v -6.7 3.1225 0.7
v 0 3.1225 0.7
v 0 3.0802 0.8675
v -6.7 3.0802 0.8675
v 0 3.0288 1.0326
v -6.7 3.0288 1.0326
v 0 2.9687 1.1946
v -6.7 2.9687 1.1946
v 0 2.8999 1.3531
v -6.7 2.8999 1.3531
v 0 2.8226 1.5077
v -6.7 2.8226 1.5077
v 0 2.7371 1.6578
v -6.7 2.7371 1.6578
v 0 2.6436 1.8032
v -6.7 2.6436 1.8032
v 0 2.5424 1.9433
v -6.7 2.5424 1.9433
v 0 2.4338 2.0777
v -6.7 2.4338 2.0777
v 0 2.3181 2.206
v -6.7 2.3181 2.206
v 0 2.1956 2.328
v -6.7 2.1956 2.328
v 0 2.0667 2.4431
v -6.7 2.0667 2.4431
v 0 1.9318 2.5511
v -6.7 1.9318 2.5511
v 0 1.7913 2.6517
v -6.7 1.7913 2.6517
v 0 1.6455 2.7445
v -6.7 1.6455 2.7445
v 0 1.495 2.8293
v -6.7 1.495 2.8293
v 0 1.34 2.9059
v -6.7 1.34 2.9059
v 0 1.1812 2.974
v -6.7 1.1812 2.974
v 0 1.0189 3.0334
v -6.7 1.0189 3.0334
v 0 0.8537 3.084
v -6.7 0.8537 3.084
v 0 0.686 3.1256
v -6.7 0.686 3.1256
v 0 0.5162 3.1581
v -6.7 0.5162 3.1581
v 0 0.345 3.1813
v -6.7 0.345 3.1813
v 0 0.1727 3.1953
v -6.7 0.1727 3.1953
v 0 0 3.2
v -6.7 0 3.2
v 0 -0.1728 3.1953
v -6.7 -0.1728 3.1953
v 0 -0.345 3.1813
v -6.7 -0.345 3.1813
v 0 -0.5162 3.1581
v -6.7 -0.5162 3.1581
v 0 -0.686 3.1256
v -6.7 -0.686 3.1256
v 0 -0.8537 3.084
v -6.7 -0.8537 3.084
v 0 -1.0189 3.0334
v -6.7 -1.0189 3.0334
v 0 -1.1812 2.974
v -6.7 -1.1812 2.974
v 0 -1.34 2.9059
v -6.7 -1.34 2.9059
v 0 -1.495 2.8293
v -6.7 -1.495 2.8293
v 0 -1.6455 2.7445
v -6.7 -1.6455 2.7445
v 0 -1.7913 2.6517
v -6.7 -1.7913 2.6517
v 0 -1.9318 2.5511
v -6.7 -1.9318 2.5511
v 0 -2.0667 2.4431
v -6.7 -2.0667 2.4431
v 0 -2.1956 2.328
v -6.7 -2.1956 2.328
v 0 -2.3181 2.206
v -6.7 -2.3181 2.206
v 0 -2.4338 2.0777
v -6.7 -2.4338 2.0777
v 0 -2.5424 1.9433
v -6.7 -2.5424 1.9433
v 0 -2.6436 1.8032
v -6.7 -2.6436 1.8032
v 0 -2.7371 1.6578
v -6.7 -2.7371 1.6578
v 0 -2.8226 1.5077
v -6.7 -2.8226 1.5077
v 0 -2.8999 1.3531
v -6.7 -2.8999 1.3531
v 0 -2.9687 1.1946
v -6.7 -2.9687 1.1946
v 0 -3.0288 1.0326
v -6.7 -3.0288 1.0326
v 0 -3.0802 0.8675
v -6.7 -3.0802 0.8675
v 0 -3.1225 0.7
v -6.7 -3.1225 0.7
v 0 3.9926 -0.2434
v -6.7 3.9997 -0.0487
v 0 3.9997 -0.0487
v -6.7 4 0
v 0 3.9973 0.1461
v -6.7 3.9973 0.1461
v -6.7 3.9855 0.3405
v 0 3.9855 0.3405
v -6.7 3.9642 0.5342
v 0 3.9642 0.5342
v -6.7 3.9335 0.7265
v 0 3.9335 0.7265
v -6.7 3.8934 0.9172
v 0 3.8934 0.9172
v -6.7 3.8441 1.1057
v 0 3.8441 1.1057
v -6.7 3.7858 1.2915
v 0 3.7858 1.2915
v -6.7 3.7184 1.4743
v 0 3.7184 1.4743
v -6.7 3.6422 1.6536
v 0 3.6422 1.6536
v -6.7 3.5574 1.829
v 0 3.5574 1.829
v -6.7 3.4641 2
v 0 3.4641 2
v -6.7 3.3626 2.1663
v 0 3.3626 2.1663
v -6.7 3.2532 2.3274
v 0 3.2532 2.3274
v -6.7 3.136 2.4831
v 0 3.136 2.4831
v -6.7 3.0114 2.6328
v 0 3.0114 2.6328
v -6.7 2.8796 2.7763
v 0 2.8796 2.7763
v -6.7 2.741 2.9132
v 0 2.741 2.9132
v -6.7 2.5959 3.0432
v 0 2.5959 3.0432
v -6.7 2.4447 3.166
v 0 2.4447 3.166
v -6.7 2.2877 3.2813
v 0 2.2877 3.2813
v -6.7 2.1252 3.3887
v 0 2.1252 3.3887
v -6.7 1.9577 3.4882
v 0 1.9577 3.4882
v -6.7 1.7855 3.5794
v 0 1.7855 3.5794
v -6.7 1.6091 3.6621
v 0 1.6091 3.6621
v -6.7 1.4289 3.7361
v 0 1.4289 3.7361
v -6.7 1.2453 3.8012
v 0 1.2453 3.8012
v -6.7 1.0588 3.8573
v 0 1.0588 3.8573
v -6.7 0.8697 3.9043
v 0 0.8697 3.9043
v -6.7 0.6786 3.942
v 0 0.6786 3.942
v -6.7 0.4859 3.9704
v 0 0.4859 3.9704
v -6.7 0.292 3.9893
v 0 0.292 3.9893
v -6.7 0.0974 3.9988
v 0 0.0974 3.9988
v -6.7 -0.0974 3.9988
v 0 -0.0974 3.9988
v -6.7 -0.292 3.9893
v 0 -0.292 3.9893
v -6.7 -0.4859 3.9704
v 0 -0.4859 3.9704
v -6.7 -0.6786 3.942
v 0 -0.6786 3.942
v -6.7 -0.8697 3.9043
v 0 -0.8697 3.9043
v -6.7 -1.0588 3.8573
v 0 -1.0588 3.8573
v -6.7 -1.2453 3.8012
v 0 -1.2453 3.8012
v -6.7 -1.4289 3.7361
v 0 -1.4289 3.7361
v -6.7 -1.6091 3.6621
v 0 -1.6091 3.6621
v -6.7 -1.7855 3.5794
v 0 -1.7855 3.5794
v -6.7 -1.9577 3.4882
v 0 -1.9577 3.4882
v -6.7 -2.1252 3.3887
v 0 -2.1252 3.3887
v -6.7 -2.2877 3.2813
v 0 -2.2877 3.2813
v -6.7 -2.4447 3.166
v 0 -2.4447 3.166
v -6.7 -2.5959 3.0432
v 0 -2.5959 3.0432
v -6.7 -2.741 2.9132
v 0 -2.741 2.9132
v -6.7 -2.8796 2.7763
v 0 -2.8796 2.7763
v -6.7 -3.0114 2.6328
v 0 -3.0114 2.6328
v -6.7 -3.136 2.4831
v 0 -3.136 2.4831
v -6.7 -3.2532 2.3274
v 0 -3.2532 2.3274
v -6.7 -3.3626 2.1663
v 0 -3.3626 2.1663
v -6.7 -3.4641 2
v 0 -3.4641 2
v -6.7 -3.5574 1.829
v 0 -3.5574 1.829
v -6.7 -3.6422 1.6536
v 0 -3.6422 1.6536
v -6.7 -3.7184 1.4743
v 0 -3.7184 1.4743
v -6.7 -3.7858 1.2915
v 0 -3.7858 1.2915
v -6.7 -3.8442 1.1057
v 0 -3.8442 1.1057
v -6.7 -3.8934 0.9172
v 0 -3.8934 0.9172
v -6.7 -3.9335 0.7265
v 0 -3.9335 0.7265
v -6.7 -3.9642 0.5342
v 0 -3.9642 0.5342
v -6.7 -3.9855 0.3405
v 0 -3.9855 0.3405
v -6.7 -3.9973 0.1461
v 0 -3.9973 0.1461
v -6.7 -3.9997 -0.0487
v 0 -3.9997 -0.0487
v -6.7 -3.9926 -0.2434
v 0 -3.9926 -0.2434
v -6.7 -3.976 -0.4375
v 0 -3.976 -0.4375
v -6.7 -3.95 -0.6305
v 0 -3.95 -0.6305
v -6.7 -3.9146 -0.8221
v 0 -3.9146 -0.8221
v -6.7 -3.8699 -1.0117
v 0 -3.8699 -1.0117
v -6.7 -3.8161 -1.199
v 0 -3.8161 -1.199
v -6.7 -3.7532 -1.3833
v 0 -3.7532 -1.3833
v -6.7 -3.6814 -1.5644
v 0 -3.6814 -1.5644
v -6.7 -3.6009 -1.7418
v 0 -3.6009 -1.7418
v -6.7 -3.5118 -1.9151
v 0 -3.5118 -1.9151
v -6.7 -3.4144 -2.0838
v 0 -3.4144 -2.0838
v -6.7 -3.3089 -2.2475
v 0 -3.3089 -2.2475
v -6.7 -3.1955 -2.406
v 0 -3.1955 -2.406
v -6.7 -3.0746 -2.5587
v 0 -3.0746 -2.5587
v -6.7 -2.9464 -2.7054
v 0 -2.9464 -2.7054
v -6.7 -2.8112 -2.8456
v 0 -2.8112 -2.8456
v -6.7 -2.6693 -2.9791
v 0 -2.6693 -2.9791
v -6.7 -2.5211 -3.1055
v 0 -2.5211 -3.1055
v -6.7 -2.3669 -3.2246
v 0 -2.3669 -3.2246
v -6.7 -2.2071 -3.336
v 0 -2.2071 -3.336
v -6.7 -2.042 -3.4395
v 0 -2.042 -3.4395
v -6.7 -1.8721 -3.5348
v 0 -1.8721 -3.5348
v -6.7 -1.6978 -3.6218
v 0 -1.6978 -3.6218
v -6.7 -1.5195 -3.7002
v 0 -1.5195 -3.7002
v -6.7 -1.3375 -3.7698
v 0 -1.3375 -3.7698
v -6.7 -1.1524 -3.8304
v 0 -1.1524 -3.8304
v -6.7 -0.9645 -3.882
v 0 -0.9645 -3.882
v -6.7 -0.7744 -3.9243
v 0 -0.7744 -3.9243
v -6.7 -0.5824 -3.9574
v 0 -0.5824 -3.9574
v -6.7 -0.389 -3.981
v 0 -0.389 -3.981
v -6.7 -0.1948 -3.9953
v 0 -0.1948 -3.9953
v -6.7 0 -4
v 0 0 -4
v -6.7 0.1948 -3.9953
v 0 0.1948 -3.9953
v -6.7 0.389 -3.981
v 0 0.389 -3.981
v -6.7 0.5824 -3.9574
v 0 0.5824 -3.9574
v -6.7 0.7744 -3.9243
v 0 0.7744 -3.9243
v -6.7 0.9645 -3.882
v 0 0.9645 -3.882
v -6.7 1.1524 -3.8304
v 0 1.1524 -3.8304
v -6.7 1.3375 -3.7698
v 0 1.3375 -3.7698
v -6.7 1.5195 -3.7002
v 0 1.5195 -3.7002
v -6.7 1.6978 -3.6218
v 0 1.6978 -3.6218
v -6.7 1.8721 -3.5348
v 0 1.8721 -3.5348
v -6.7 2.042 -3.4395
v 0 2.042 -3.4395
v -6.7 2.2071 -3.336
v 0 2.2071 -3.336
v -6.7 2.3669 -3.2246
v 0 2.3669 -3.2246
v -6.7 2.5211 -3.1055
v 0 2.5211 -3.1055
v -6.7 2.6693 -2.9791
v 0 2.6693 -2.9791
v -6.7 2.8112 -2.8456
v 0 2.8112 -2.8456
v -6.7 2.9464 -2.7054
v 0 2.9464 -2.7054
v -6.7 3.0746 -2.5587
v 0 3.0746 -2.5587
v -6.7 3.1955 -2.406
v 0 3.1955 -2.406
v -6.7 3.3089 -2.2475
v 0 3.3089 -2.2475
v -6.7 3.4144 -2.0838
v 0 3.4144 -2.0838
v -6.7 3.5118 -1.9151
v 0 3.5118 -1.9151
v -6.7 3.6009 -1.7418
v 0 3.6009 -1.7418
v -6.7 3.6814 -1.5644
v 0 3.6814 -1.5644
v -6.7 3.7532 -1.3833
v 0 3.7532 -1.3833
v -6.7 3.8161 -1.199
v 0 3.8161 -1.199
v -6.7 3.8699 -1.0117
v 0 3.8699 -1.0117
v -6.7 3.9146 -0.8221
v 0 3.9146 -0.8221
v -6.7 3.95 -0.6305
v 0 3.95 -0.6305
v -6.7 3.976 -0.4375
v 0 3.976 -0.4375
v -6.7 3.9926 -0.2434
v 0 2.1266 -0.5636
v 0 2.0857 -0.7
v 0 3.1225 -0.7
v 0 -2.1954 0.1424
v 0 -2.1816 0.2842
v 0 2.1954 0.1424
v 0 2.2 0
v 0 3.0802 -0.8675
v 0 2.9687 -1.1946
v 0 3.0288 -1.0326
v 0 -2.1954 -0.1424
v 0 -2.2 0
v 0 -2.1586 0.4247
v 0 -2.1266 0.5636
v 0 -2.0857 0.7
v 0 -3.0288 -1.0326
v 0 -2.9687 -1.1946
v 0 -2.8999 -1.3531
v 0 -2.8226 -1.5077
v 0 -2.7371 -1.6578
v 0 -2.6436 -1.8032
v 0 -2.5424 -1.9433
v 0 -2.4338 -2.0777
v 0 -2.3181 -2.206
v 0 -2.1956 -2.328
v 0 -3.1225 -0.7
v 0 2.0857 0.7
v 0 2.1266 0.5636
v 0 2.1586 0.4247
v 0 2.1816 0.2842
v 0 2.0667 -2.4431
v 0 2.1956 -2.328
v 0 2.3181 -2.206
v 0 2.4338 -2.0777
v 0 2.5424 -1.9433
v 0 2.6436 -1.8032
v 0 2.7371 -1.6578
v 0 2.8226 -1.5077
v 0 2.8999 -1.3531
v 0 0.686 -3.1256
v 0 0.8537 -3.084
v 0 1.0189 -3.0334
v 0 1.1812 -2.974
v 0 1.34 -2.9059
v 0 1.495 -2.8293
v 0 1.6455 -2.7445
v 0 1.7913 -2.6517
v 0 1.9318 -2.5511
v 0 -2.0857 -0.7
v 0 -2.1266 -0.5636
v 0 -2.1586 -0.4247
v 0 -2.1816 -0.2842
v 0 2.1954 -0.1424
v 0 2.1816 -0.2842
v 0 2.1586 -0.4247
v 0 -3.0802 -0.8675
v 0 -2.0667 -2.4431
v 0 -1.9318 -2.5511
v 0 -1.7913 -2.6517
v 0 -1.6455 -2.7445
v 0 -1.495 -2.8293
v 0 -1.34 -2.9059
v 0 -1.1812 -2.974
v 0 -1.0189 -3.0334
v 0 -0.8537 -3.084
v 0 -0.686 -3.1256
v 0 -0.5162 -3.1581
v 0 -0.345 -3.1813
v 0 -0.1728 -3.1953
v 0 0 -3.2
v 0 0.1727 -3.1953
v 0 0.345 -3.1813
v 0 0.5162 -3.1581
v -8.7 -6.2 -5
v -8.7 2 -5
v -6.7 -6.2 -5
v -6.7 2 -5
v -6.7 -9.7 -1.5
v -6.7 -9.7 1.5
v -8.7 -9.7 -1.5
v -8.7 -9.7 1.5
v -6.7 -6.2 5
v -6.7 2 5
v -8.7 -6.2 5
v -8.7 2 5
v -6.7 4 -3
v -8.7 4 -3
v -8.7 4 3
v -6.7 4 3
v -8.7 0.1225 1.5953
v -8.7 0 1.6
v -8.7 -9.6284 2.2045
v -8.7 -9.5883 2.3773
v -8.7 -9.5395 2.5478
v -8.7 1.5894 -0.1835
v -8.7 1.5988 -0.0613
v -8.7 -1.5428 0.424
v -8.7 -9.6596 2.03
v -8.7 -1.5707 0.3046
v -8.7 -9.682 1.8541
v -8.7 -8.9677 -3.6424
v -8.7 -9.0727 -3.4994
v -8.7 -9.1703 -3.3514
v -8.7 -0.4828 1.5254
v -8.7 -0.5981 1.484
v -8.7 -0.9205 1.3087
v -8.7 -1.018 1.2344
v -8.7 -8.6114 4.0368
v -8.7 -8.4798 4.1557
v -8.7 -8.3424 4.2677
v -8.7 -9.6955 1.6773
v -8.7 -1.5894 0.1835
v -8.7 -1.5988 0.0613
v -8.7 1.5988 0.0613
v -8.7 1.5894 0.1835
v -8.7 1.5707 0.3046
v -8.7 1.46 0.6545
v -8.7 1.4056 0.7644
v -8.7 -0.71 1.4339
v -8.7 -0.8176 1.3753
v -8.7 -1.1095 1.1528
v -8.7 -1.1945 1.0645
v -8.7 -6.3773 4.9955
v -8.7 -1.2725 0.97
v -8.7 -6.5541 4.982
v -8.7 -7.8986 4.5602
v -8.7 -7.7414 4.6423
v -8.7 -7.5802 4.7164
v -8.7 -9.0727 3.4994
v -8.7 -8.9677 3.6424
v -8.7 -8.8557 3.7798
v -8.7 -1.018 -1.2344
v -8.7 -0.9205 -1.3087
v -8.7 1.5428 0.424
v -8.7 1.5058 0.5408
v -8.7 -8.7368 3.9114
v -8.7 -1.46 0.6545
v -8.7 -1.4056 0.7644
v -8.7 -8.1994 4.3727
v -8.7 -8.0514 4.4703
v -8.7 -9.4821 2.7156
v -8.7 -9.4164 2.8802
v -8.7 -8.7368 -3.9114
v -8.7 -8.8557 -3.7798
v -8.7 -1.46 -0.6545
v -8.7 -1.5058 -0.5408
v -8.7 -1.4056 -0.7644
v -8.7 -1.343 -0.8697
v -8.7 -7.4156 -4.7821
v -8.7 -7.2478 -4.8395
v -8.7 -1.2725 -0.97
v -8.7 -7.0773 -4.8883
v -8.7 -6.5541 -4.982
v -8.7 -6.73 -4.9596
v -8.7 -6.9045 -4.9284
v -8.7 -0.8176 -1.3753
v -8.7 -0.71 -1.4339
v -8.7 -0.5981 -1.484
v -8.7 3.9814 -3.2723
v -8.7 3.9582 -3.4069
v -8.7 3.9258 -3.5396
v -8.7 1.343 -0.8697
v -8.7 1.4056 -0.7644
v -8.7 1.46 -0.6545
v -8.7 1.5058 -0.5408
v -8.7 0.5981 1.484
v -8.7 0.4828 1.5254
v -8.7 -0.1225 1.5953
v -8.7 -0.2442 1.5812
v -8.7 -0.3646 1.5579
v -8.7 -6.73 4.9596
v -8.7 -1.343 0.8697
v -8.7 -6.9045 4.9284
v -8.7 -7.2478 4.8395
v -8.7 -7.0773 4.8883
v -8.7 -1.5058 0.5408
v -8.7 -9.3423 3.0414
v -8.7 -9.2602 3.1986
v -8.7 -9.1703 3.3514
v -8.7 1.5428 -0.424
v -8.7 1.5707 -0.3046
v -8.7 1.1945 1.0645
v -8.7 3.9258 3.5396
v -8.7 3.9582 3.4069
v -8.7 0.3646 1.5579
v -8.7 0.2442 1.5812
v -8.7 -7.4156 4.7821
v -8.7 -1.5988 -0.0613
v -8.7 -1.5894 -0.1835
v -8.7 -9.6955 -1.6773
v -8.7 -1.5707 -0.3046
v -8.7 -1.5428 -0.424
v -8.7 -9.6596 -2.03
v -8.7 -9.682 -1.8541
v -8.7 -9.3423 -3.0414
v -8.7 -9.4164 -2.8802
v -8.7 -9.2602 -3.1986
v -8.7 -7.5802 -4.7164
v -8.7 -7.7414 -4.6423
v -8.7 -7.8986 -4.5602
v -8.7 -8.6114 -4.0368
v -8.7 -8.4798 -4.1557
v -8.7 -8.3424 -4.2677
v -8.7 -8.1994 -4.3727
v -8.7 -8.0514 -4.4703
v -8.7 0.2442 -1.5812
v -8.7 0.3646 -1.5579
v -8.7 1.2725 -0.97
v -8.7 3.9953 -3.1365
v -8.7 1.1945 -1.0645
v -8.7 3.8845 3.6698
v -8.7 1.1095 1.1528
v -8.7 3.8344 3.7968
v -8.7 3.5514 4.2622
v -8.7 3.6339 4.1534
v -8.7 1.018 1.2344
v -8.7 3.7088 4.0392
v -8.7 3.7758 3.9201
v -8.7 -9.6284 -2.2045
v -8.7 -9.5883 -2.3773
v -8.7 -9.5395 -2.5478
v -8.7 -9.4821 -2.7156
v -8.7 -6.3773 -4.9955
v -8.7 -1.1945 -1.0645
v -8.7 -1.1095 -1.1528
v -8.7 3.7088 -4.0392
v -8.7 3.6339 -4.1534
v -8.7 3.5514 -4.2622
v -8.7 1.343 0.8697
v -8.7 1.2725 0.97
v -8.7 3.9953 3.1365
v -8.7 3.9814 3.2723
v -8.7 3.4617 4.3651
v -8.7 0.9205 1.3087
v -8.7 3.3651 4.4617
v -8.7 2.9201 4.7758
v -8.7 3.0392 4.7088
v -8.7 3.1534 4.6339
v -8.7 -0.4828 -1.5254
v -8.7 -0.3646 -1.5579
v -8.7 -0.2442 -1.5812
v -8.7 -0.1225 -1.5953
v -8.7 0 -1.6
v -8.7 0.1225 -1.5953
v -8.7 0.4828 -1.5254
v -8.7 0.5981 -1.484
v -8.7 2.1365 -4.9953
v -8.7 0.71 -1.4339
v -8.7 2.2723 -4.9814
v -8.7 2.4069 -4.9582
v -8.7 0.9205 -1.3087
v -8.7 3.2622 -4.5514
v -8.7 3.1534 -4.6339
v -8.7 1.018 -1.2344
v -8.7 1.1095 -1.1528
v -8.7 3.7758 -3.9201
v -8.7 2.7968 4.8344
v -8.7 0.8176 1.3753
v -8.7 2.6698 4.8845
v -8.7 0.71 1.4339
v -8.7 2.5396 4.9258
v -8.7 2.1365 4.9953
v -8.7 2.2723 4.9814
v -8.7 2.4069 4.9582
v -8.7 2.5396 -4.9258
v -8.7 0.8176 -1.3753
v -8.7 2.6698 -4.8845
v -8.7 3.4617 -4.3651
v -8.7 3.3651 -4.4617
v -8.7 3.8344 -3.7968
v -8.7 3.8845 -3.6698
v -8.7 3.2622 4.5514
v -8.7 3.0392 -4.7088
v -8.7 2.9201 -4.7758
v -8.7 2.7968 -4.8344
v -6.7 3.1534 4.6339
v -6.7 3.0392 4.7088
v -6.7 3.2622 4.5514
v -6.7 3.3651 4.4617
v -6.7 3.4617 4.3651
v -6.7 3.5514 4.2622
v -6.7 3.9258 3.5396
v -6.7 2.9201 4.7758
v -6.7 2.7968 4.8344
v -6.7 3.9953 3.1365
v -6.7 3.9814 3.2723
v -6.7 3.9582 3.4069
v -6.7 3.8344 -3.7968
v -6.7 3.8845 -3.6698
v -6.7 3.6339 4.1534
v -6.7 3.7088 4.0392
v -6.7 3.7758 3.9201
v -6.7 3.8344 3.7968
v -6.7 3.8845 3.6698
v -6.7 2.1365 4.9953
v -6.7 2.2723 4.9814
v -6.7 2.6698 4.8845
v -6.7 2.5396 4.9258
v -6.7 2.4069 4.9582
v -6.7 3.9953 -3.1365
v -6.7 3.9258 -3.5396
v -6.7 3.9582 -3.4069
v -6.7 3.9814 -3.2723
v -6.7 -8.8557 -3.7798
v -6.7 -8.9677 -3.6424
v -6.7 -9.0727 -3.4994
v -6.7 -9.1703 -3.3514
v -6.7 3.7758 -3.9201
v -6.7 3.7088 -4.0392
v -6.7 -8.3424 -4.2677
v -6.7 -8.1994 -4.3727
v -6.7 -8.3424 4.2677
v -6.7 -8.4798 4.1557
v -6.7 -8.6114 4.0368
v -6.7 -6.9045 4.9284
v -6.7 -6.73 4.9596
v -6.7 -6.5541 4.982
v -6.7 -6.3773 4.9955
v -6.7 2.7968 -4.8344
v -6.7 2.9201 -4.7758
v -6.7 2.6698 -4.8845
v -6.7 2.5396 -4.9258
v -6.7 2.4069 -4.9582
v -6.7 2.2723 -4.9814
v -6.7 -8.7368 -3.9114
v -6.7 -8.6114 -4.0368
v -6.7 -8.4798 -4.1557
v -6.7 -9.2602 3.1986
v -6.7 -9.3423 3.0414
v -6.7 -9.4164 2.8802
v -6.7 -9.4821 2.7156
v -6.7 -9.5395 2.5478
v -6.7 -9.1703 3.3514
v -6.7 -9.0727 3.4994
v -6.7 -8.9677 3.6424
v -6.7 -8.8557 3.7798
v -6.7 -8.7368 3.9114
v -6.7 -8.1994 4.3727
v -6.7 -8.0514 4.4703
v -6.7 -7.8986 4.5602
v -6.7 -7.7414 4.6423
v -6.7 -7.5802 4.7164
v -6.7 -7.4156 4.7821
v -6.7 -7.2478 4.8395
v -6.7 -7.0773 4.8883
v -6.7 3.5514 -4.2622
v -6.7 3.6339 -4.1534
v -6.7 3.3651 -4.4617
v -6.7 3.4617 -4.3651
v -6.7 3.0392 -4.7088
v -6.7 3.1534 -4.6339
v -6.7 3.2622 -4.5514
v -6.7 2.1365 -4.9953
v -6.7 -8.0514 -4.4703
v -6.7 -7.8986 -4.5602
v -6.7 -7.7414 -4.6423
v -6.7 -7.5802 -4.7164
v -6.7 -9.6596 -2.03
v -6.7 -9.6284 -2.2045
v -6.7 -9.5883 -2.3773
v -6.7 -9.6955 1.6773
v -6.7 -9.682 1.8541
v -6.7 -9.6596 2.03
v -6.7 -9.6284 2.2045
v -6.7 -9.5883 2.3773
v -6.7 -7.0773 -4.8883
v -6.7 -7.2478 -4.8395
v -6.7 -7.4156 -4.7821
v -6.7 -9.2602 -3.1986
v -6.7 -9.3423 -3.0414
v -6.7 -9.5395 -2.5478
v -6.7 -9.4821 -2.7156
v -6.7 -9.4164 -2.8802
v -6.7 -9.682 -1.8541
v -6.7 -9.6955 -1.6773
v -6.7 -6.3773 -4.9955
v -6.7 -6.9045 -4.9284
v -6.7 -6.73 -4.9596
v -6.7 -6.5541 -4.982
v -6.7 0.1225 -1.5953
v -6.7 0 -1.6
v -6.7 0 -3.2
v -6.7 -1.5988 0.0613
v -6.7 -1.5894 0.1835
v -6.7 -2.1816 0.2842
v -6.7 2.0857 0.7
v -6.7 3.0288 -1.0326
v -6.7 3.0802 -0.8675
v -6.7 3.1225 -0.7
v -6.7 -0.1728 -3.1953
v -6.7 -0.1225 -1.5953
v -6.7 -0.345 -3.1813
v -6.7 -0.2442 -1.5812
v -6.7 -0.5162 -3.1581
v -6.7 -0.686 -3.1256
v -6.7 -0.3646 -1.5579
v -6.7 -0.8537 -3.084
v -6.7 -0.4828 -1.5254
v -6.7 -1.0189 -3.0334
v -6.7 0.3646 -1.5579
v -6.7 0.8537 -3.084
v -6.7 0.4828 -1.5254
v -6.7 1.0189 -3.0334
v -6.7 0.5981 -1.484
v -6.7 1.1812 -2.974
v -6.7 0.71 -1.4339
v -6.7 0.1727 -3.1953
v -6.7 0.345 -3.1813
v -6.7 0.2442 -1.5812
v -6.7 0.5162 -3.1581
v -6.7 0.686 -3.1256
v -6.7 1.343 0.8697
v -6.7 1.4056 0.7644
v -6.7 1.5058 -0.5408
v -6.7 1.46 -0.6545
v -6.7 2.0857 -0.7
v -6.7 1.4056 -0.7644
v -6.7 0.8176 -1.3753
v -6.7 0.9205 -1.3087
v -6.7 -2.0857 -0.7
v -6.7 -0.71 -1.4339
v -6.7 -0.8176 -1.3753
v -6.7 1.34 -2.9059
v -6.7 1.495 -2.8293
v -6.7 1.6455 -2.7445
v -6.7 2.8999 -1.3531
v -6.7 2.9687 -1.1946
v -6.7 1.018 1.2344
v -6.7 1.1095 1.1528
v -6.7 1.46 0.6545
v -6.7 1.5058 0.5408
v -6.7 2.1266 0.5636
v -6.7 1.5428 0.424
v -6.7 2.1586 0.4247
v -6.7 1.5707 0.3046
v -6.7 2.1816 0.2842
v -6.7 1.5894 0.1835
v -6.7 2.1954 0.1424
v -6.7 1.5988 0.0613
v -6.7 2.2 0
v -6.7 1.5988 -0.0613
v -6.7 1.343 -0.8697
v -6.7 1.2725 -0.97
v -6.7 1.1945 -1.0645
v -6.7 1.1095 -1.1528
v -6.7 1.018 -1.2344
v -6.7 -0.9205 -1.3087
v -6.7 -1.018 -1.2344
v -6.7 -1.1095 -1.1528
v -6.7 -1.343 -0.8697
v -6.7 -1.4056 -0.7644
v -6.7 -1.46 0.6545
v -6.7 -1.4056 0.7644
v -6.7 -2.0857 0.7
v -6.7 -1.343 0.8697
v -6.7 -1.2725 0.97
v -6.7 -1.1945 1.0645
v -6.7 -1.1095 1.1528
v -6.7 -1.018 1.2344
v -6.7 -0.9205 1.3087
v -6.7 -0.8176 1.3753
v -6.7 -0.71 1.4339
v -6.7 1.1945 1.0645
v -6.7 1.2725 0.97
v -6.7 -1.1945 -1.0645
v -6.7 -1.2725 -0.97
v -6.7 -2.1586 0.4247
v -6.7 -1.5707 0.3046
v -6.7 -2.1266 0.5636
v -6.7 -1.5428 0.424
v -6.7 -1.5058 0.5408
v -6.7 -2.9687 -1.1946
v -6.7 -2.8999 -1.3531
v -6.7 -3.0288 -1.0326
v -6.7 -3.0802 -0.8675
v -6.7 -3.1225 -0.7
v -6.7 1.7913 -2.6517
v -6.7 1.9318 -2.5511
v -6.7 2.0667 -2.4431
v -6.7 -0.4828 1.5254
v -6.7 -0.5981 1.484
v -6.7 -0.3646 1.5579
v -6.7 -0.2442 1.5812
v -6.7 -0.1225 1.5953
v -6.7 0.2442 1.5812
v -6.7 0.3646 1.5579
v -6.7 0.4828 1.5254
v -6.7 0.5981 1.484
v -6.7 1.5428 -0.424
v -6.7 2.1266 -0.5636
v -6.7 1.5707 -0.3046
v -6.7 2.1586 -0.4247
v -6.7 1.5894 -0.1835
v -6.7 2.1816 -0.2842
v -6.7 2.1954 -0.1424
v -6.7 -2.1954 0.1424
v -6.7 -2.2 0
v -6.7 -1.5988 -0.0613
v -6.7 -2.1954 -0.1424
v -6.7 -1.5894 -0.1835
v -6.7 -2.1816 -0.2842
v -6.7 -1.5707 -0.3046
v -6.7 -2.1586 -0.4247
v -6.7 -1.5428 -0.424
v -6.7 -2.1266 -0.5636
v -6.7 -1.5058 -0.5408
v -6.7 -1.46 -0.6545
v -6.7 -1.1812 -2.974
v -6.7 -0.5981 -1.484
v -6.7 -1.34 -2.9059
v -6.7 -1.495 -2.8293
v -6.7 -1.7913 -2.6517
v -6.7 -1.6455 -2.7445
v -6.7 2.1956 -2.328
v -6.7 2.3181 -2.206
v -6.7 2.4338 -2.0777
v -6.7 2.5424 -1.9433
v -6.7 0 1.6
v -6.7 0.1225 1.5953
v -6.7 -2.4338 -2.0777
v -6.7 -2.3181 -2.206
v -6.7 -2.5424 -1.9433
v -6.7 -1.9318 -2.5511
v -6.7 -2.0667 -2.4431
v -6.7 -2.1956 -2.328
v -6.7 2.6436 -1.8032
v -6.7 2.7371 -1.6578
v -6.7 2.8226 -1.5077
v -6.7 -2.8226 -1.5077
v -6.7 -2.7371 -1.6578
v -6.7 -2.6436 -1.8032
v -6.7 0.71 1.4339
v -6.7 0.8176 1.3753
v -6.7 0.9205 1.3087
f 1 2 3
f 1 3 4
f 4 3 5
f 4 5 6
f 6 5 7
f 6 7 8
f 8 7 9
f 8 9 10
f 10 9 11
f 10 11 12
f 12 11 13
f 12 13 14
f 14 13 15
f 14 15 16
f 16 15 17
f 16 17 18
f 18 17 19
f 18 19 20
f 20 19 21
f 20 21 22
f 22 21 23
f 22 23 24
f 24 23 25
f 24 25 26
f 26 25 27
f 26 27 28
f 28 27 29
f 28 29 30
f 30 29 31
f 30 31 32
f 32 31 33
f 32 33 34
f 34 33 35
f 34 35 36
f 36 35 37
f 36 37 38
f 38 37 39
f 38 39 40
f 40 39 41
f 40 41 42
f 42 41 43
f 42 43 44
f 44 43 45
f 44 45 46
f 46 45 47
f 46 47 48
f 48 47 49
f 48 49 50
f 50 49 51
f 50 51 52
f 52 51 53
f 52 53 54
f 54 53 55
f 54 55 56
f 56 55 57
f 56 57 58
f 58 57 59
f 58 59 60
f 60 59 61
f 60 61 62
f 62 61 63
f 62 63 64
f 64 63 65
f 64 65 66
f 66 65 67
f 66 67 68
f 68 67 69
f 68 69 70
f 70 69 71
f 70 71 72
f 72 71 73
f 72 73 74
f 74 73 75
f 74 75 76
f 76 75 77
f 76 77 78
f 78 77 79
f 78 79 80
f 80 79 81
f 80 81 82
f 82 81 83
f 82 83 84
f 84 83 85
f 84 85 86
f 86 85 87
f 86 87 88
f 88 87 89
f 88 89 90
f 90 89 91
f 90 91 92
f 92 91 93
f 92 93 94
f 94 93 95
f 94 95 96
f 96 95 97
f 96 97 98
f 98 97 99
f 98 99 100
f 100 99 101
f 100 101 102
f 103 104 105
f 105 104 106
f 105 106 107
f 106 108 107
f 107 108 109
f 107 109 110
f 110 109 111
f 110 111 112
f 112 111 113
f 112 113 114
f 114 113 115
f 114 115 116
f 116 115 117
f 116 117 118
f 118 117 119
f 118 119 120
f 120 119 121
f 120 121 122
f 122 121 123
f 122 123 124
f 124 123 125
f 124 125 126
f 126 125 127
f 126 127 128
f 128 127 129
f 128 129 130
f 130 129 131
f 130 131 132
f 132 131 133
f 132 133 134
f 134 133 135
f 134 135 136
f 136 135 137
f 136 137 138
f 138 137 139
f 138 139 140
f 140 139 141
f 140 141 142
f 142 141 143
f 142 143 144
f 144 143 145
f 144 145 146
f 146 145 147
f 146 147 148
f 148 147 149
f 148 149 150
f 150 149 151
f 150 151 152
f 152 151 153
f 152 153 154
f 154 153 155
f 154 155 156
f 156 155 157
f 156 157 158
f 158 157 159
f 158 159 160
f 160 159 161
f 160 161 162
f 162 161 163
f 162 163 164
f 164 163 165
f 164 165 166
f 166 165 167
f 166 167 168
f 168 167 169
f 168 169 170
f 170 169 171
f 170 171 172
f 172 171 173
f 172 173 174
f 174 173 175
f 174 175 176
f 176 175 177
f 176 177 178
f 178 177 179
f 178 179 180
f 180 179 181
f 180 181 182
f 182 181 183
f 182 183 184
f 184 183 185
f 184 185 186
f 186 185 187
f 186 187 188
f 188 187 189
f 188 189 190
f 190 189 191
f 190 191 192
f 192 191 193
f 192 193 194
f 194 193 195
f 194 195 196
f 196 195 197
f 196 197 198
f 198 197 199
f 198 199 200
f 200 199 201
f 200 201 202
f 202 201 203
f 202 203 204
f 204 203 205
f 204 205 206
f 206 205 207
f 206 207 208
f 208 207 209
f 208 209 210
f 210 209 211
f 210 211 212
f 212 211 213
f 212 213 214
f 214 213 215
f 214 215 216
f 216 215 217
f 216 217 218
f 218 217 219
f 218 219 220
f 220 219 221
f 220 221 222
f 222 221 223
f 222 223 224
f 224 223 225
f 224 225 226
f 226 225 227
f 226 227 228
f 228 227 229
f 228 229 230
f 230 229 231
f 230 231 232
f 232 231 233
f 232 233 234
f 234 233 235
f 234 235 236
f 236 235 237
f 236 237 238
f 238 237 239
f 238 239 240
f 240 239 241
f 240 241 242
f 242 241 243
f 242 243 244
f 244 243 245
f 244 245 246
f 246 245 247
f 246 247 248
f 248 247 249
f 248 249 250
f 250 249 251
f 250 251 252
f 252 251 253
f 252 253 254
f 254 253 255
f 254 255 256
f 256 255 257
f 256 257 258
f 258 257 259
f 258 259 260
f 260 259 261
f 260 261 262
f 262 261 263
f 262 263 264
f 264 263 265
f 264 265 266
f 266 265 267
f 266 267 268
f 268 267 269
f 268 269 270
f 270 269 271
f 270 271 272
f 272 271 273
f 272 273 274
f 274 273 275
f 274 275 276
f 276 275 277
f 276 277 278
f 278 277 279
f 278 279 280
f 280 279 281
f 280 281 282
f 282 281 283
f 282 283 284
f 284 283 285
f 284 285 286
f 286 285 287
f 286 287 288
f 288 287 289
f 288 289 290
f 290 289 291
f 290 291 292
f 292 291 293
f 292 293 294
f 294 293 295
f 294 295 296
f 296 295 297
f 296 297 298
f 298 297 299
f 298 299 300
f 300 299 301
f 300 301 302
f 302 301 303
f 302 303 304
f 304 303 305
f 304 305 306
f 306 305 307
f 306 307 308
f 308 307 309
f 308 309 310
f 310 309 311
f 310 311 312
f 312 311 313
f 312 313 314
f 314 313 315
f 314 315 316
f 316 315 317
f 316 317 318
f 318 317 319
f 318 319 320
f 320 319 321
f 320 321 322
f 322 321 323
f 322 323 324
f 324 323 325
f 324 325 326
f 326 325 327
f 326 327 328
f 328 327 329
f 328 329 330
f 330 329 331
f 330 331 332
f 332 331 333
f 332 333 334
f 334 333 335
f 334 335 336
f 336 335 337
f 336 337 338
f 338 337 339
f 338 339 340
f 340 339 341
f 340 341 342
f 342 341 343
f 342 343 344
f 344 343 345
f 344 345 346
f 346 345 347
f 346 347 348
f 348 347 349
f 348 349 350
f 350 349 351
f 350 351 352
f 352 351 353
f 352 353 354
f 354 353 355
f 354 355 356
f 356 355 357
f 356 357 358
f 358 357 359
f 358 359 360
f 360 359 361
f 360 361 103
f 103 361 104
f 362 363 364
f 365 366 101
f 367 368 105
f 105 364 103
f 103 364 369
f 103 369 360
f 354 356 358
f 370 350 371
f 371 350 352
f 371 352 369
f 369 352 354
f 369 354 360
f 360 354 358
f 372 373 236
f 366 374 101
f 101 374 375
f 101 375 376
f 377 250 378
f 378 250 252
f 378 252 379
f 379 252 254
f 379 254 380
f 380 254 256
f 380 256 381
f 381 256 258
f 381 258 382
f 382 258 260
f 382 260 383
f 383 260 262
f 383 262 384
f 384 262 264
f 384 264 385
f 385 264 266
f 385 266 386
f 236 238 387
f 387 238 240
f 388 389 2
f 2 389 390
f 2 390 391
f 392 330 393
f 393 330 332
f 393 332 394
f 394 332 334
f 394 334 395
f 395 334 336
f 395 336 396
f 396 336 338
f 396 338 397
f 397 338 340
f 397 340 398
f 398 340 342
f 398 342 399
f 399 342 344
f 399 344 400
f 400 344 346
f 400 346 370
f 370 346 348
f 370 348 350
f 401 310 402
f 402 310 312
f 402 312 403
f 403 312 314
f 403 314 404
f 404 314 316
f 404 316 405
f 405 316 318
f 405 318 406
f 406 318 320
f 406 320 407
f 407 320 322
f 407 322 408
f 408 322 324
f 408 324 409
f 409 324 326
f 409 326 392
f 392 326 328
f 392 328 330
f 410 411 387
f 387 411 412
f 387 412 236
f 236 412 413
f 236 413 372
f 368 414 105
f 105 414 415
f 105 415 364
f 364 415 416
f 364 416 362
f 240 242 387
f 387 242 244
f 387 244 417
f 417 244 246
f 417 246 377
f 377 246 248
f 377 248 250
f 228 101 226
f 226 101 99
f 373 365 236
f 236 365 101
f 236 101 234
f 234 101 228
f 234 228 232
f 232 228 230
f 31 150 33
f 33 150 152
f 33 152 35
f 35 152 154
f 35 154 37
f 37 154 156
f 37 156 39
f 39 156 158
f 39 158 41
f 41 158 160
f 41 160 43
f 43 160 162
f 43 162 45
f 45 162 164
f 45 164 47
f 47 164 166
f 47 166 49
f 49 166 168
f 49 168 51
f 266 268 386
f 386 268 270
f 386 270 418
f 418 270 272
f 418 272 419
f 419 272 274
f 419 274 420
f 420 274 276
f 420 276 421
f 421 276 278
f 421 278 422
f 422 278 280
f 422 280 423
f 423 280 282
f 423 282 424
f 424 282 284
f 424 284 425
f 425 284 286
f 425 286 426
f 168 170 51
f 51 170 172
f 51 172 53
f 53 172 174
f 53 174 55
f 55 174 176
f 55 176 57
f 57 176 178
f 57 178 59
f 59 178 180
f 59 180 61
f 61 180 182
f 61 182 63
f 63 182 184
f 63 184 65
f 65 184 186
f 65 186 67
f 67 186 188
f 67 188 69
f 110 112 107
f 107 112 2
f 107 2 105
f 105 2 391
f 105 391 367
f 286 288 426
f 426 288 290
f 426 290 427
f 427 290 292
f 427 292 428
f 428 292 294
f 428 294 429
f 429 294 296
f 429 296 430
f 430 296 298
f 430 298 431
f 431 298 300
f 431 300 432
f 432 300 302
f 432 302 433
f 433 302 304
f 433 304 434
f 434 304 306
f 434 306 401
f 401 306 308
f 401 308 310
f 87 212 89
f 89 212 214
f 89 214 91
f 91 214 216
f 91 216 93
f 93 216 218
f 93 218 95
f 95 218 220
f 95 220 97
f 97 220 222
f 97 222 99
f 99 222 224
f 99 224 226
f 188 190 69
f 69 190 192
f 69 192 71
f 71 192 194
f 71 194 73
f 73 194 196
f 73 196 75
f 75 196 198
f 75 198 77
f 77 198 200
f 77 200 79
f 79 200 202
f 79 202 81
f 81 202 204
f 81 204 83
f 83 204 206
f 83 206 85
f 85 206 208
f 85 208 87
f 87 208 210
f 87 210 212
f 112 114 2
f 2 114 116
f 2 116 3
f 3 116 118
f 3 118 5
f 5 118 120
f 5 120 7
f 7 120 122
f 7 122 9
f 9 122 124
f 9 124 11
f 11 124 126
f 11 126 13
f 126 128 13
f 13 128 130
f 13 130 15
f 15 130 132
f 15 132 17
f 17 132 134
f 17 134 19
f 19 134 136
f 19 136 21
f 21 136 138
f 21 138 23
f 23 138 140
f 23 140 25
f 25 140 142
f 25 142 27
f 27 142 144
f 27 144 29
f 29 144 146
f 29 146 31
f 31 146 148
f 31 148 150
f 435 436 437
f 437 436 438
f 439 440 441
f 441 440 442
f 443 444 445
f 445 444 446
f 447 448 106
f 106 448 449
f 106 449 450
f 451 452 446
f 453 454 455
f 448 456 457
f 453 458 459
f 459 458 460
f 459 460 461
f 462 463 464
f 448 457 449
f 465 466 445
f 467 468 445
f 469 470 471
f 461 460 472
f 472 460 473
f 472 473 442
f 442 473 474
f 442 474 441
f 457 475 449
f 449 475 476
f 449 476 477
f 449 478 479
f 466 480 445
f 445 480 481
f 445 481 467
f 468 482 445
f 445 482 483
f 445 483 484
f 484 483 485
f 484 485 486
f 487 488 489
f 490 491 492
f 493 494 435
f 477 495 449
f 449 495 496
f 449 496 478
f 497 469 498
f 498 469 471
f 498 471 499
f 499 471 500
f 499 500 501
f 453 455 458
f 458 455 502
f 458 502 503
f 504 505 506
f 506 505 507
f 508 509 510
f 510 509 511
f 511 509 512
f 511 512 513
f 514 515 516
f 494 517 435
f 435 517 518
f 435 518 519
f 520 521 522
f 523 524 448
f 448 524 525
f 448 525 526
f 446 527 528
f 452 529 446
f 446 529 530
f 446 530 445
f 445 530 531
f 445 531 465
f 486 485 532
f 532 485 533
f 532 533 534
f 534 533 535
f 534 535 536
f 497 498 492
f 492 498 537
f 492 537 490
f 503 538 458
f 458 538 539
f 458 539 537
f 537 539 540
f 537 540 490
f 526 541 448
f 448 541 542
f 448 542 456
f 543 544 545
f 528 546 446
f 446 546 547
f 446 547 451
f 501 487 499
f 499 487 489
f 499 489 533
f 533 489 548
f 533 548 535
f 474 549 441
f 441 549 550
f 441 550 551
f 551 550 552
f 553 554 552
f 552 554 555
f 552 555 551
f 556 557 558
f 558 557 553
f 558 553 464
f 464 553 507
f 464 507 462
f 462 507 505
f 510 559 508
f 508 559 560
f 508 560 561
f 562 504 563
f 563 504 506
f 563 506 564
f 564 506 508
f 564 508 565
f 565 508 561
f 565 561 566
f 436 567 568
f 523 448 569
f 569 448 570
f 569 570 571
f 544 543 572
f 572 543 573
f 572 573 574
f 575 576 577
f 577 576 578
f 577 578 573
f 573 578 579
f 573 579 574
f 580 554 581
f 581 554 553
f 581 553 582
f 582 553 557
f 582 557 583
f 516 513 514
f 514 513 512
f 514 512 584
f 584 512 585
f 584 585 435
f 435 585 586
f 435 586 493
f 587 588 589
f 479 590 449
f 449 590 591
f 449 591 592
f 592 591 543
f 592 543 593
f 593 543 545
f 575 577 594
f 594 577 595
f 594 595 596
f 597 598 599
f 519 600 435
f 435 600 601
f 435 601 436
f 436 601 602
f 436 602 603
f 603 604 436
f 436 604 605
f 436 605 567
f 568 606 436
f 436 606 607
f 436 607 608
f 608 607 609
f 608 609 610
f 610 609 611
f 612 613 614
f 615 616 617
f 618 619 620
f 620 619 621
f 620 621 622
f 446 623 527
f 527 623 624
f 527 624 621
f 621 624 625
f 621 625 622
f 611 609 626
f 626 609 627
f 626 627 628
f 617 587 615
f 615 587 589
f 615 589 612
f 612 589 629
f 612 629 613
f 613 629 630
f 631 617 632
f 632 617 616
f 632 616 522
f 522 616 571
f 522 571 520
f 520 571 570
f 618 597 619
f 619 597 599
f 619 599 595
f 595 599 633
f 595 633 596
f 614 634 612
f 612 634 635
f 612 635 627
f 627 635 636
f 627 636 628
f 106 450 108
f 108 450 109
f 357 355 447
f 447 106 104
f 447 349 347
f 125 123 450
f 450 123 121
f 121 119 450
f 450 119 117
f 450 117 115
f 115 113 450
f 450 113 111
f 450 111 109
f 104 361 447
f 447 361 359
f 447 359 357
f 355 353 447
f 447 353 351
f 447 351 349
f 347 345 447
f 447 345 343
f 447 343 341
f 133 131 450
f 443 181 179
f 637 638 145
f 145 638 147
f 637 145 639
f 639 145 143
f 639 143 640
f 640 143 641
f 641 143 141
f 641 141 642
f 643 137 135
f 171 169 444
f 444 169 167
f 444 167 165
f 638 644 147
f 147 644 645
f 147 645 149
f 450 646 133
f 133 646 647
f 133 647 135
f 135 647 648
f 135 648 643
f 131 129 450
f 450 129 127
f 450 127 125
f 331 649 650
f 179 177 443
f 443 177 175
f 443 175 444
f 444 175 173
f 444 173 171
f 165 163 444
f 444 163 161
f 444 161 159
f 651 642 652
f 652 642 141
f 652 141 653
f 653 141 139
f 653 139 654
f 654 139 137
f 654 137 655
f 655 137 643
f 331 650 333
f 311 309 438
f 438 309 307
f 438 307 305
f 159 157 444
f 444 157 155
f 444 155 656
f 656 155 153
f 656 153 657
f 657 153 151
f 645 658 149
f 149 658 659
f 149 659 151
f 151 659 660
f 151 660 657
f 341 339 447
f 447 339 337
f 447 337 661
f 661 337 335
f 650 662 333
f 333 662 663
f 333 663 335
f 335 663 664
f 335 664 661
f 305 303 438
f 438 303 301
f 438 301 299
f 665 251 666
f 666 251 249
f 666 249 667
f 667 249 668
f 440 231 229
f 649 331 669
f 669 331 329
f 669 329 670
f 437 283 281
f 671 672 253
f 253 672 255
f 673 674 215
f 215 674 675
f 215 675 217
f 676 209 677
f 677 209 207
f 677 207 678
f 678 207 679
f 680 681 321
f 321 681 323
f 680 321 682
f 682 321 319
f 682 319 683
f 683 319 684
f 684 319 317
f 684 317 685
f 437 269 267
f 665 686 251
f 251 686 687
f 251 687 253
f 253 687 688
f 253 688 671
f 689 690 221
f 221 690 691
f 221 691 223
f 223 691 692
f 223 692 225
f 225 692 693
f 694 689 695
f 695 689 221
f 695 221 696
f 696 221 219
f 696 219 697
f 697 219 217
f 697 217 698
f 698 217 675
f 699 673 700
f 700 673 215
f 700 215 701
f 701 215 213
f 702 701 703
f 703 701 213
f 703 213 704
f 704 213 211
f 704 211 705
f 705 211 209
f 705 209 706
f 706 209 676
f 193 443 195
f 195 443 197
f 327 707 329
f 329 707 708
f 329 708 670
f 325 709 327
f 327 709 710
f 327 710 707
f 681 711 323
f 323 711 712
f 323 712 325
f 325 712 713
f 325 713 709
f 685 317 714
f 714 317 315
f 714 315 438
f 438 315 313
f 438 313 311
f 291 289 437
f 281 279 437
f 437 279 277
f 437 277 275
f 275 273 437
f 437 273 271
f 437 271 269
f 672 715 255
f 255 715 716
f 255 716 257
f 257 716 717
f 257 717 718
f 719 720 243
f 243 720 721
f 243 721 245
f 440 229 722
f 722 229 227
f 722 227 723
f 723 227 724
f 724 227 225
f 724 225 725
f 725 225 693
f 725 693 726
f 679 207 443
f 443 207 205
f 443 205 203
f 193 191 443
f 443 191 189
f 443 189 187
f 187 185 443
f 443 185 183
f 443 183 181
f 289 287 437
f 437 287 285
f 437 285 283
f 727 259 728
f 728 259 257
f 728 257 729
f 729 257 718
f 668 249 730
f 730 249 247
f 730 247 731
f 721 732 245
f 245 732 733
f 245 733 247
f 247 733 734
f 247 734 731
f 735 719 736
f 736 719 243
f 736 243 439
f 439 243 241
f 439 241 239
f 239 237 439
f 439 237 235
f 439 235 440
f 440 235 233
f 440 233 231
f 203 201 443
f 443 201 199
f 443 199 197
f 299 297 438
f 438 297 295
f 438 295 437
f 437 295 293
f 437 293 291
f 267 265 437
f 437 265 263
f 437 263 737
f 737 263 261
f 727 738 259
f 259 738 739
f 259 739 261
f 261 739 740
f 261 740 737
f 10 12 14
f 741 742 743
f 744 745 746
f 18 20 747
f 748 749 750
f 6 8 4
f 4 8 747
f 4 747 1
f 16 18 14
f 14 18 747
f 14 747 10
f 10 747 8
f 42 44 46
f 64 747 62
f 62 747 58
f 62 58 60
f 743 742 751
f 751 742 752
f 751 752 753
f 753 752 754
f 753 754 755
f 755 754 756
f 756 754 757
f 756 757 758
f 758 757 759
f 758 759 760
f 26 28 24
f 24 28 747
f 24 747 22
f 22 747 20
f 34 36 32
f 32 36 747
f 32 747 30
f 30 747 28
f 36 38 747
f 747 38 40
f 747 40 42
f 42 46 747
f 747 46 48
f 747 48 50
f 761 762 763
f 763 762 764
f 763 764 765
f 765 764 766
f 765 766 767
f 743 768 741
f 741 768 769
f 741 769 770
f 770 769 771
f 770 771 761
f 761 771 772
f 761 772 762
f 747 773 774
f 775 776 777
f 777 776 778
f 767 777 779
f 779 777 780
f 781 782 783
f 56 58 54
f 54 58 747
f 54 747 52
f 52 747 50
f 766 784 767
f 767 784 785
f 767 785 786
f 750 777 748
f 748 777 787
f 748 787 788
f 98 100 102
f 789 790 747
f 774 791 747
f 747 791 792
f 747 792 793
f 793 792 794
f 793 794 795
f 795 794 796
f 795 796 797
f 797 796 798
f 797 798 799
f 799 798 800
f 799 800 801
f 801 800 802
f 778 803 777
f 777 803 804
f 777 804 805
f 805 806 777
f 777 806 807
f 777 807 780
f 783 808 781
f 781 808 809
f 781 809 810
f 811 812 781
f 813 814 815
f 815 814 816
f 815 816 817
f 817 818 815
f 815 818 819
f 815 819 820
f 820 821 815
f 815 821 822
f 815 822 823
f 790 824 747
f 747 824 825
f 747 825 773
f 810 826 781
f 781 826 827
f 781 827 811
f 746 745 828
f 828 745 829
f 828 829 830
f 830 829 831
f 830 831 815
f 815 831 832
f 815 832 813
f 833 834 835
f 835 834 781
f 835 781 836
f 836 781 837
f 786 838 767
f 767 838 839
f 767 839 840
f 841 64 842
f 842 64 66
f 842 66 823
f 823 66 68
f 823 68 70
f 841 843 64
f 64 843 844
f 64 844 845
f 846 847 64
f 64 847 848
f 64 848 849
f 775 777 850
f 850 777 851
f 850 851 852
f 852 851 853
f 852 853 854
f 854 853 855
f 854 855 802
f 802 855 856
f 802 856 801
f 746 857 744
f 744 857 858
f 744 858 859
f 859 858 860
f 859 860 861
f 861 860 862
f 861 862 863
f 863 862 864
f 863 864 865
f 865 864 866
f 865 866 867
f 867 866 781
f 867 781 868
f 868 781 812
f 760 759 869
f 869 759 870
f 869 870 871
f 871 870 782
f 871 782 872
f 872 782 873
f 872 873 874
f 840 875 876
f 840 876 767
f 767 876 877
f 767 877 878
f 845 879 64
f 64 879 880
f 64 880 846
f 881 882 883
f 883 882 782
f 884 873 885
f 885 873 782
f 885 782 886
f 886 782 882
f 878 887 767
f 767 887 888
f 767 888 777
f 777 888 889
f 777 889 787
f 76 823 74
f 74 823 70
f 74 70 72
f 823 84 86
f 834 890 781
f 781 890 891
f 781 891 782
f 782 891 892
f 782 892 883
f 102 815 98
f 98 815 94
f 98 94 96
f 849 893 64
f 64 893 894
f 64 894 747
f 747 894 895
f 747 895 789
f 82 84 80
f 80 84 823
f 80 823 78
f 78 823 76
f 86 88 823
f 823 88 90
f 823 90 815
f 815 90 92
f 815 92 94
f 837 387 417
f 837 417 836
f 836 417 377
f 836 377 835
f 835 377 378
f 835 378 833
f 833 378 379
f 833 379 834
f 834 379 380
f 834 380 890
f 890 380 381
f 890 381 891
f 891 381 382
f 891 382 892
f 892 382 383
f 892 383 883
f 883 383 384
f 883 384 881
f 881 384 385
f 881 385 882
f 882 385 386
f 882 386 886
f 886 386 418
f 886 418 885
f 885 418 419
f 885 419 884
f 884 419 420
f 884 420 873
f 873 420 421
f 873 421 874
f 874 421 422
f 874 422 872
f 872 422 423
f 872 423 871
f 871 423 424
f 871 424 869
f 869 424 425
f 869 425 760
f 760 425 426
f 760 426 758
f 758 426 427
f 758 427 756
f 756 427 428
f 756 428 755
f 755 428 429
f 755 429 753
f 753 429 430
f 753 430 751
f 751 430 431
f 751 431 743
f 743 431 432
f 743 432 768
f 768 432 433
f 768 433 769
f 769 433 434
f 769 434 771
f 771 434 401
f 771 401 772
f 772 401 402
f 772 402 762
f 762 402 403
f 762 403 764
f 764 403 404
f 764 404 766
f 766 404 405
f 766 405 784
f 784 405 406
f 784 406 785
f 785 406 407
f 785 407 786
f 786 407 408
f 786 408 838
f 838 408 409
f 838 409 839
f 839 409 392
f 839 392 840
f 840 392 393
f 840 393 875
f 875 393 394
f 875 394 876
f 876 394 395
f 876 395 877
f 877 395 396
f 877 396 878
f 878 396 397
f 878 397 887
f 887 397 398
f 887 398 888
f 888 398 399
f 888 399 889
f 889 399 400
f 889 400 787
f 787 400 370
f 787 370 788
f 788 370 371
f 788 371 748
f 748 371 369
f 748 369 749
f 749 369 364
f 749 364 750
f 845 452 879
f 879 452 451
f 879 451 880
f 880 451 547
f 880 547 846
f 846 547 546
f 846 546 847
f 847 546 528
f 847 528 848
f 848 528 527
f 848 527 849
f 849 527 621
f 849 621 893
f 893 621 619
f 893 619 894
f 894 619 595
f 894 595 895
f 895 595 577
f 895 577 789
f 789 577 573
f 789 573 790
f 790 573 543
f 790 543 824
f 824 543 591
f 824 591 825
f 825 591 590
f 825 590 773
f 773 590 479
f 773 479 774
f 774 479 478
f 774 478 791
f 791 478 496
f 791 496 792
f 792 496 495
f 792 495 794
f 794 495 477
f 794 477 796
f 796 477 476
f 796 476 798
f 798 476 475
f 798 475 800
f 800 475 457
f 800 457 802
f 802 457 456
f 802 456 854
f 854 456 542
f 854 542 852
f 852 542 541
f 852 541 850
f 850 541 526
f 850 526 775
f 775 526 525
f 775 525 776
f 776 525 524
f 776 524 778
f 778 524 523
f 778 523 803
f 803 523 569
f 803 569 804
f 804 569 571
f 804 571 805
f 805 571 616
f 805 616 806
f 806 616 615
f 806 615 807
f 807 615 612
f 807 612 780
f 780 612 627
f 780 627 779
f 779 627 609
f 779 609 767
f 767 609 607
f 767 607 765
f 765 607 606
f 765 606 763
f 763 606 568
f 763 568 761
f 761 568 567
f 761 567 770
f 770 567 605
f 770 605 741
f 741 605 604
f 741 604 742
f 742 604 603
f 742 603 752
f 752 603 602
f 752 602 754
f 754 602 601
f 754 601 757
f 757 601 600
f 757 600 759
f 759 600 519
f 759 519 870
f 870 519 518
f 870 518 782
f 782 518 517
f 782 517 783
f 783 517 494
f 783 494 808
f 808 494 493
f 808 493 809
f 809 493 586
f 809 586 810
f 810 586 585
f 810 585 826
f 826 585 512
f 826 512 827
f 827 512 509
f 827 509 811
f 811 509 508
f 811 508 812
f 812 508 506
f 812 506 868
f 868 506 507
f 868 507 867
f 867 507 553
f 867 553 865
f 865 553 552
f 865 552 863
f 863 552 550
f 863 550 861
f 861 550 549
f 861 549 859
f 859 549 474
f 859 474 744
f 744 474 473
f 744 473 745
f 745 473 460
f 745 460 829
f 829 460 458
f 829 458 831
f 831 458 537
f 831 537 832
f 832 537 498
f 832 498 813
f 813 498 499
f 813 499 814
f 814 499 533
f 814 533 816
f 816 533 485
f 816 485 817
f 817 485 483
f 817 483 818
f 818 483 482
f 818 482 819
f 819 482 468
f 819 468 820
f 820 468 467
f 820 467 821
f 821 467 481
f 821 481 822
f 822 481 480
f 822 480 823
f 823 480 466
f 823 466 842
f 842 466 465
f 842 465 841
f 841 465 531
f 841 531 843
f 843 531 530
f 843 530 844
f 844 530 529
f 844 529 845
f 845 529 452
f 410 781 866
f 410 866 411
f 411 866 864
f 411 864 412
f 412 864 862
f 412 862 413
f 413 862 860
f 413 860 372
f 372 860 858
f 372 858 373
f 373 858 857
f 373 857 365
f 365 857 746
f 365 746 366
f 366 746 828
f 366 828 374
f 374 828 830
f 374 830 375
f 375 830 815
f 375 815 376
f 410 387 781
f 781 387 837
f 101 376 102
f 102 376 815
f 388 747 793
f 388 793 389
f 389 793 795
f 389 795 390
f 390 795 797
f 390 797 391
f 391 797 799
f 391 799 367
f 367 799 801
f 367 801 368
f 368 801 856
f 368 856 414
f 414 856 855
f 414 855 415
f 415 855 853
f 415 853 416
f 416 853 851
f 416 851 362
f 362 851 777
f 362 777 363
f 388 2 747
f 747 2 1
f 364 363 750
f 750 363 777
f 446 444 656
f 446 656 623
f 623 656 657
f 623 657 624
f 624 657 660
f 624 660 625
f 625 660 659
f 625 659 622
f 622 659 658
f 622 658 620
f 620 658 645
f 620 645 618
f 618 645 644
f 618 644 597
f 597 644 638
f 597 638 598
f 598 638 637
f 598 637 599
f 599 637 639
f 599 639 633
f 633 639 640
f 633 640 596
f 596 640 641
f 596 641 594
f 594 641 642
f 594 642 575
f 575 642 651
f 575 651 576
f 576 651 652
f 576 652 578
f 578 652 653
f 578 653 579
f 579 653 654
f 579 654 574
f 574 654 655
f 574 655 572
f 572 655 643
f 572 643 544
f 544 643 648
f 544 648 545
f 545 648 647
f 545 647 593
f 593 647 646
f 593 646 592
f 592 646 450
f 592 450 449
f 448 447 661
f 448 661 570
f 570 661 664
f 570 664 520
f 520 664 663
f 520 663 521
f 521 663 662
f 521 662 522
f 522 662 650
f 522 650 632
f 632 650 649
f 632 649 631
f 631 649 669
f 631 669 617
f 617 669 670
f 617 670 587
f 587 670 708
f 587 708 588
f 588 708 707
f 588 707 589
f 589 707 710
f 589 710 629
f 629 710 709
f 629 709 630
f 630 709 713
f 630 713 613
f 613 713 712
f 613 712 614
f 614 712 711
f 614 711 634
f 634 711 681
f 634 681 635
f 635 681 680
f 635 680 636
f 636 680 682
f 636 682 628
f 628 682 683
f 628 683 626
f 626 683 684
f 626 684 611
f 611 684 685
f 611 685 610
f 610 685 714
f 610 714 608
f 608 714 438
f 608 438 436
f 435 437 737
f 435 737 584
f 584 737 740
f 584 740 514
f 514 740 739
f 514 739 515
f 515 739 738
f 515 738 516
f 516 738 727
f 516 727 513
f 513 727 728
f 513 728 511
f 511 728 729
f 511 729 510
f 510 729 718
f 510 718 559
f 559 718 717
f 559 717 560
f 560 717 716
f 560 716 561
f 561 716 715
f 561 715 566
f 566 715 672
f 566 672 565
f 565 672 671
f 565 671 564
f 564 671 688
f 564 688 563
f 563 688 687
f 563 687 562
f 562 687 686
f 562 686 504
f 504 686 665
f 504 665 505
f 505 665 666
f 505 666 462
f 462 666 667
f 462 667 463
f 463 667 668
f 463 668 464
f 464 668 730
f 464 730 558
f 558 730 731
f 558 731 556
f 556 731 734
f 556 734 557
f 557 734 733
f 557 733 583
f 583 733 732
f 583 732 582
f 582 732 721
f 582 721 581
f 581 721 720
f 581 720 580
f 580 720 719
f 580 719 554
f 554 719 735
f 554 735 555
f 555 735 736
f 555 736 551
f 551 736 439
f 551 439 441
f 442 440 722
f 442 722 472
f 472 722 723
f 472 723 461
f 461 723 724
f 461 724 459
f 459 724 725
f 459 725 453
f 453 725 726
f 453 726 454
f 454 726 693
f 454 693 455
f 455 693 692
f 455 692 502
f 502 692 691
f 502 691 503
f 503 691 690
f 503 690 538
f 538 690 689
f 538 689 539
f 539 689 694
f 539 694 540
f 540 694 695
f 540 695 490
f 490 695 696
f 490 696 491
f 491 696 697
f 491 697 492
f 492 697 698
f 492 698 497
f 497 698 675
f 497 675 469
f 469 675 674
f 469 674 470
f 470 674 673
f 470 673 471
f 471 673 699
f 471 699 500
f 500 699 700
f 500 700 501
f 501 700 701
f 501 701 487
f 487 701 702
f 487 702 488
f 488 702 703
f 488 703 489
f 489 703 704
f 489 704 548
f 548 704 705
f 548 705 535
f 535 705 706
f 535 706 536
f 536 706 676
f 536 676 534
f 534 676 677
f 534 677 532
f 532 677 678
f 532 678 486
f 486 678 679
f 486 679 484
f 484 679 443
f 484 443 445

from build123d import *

# Parameters (mm, degrees)
SKETCH2_R           = 4
BOSS_EXTRUDE1_DEPTH = 6.7
SKETCH3_W           = 10
SKETCH3_H           = 13.7
BOSS_EXTRUDE2_DEPTH = 2
SKETCH4_R           = 3.2
CUT_EXTRUDE1_DEPTH  = 6.7
SKETCH7_R           = 1.6
CUT_EXTRUDE4_DEPTH  = 14.956360557
BOSS_EXTRUDE3_START = -8.7
BOSS_EXTRUDE3_DEPTH = 8.7
FILLET2_R           = 2
FILLET3_R           = 3.5


with BuildPart() as part:
    # Sketch2 → Boss-Extrude1 (new body)
    with BuildSketch(Plane(origin=(0, 0, 0), x_dir=(0, 0, -1), z_dir=(1, 0, 0))):
        Circle(SKETCH2_R)
    extrude(amount=-BOSS_EXTRUDE1_DEPTH)

    # Sketch3 → Boss-Extrude2 (add)
    with BuildSketch(Plane.ZY.offset(6.7)):
        with Locations((0, -2.85)):
            Rectangle(SKETCH3_W, SKETCH3_H)
    extrude(amount=BOSS_EXTRUDE2_DEPTH)

    # Sketch4 → Cut-Extrude1 (cut)
    with BuildSketch(Plane(origin=(0, 0, 0), x_dir=(0, 0, -1), z_dir=(1, 0, 0))):
        Circle(SKETCH4_R)
    extrude(amount=-CUT_EXTRUDE1_DEPTH, mode=Mode.SUBTRACT)

    # Sketch7 → Cut-Extrude4 (cut, through all)
    with BuildSketch(Plane.ZY.offset(8.7)):
        Circle(SKETCH7_R)
    extrude(amount=-CUT_EXTRUDE4_DEPTH, mode=Mode.SUBTRACT)

    # Sketch6 → Boss-Extrude3 (add)
    with BuildSketch(Plane.ZY.offset(8.7).offset(BOSS_EXTRUDE3_START)):
        with BuildLine():
            Line((0.7, -2.861817604), (0.7, -2.085665361))
            ThreePointArc((0.7, -2.085665361), (0, -2.2), (-0.7, -2.085665361))
            Line((-0.7, -2.085665361), (-0.7, -2.861817604))
            Line((-0.7, -2.861817604), (-0.7, -3.122498999))
            ThreePointArc((-0.7, -3.122498999), (0, -3.2), (0.7, -3.122498999))
            Line((0.7, -3.122498999), (0.7, -2.861817604))
        make_face()
        with BuildLine():
            Line((-0.7, 2.085665361), (-0.7, 2.861817604))
            Line((-0.7, 2.861817604), (-0.7, 3.122498999))
            ThreePointArc((-0.7, 3.122498999), (0, 3.2), (0.7, 3.122498999))
            Line((0.7, 3.122498999), (0.7, 2.861817604))
            Line((0.7, 2.861817604), (0.7, 2.085665361))
            ThreePointArc((0.7, 2.085665361), (0, 2.2), (-0.7, 2.085665361))
        make_face()
    extrude(amount=BOSS_EXTRUDE3_DEPTH)

    # Fillet2
    fillet2_edges = [part.edges().sort_by_distance(p)[0] for p in [
        (-7.7, 4, -5),
        (-7.7, 4, 5),
    ]]
    fillet(fillet2_edges, radius=FILLET2_R)

    # Fillet3
    fillet3_edges = [part.edges().sort_by_distance(p)[0] for p in [
        (-7.7, -9.7, -5),
        (-7.7, -9.7, 5),
    ]]
    fillet(fillet3_edges, radius=FILLET3_R)


solid = part.part
